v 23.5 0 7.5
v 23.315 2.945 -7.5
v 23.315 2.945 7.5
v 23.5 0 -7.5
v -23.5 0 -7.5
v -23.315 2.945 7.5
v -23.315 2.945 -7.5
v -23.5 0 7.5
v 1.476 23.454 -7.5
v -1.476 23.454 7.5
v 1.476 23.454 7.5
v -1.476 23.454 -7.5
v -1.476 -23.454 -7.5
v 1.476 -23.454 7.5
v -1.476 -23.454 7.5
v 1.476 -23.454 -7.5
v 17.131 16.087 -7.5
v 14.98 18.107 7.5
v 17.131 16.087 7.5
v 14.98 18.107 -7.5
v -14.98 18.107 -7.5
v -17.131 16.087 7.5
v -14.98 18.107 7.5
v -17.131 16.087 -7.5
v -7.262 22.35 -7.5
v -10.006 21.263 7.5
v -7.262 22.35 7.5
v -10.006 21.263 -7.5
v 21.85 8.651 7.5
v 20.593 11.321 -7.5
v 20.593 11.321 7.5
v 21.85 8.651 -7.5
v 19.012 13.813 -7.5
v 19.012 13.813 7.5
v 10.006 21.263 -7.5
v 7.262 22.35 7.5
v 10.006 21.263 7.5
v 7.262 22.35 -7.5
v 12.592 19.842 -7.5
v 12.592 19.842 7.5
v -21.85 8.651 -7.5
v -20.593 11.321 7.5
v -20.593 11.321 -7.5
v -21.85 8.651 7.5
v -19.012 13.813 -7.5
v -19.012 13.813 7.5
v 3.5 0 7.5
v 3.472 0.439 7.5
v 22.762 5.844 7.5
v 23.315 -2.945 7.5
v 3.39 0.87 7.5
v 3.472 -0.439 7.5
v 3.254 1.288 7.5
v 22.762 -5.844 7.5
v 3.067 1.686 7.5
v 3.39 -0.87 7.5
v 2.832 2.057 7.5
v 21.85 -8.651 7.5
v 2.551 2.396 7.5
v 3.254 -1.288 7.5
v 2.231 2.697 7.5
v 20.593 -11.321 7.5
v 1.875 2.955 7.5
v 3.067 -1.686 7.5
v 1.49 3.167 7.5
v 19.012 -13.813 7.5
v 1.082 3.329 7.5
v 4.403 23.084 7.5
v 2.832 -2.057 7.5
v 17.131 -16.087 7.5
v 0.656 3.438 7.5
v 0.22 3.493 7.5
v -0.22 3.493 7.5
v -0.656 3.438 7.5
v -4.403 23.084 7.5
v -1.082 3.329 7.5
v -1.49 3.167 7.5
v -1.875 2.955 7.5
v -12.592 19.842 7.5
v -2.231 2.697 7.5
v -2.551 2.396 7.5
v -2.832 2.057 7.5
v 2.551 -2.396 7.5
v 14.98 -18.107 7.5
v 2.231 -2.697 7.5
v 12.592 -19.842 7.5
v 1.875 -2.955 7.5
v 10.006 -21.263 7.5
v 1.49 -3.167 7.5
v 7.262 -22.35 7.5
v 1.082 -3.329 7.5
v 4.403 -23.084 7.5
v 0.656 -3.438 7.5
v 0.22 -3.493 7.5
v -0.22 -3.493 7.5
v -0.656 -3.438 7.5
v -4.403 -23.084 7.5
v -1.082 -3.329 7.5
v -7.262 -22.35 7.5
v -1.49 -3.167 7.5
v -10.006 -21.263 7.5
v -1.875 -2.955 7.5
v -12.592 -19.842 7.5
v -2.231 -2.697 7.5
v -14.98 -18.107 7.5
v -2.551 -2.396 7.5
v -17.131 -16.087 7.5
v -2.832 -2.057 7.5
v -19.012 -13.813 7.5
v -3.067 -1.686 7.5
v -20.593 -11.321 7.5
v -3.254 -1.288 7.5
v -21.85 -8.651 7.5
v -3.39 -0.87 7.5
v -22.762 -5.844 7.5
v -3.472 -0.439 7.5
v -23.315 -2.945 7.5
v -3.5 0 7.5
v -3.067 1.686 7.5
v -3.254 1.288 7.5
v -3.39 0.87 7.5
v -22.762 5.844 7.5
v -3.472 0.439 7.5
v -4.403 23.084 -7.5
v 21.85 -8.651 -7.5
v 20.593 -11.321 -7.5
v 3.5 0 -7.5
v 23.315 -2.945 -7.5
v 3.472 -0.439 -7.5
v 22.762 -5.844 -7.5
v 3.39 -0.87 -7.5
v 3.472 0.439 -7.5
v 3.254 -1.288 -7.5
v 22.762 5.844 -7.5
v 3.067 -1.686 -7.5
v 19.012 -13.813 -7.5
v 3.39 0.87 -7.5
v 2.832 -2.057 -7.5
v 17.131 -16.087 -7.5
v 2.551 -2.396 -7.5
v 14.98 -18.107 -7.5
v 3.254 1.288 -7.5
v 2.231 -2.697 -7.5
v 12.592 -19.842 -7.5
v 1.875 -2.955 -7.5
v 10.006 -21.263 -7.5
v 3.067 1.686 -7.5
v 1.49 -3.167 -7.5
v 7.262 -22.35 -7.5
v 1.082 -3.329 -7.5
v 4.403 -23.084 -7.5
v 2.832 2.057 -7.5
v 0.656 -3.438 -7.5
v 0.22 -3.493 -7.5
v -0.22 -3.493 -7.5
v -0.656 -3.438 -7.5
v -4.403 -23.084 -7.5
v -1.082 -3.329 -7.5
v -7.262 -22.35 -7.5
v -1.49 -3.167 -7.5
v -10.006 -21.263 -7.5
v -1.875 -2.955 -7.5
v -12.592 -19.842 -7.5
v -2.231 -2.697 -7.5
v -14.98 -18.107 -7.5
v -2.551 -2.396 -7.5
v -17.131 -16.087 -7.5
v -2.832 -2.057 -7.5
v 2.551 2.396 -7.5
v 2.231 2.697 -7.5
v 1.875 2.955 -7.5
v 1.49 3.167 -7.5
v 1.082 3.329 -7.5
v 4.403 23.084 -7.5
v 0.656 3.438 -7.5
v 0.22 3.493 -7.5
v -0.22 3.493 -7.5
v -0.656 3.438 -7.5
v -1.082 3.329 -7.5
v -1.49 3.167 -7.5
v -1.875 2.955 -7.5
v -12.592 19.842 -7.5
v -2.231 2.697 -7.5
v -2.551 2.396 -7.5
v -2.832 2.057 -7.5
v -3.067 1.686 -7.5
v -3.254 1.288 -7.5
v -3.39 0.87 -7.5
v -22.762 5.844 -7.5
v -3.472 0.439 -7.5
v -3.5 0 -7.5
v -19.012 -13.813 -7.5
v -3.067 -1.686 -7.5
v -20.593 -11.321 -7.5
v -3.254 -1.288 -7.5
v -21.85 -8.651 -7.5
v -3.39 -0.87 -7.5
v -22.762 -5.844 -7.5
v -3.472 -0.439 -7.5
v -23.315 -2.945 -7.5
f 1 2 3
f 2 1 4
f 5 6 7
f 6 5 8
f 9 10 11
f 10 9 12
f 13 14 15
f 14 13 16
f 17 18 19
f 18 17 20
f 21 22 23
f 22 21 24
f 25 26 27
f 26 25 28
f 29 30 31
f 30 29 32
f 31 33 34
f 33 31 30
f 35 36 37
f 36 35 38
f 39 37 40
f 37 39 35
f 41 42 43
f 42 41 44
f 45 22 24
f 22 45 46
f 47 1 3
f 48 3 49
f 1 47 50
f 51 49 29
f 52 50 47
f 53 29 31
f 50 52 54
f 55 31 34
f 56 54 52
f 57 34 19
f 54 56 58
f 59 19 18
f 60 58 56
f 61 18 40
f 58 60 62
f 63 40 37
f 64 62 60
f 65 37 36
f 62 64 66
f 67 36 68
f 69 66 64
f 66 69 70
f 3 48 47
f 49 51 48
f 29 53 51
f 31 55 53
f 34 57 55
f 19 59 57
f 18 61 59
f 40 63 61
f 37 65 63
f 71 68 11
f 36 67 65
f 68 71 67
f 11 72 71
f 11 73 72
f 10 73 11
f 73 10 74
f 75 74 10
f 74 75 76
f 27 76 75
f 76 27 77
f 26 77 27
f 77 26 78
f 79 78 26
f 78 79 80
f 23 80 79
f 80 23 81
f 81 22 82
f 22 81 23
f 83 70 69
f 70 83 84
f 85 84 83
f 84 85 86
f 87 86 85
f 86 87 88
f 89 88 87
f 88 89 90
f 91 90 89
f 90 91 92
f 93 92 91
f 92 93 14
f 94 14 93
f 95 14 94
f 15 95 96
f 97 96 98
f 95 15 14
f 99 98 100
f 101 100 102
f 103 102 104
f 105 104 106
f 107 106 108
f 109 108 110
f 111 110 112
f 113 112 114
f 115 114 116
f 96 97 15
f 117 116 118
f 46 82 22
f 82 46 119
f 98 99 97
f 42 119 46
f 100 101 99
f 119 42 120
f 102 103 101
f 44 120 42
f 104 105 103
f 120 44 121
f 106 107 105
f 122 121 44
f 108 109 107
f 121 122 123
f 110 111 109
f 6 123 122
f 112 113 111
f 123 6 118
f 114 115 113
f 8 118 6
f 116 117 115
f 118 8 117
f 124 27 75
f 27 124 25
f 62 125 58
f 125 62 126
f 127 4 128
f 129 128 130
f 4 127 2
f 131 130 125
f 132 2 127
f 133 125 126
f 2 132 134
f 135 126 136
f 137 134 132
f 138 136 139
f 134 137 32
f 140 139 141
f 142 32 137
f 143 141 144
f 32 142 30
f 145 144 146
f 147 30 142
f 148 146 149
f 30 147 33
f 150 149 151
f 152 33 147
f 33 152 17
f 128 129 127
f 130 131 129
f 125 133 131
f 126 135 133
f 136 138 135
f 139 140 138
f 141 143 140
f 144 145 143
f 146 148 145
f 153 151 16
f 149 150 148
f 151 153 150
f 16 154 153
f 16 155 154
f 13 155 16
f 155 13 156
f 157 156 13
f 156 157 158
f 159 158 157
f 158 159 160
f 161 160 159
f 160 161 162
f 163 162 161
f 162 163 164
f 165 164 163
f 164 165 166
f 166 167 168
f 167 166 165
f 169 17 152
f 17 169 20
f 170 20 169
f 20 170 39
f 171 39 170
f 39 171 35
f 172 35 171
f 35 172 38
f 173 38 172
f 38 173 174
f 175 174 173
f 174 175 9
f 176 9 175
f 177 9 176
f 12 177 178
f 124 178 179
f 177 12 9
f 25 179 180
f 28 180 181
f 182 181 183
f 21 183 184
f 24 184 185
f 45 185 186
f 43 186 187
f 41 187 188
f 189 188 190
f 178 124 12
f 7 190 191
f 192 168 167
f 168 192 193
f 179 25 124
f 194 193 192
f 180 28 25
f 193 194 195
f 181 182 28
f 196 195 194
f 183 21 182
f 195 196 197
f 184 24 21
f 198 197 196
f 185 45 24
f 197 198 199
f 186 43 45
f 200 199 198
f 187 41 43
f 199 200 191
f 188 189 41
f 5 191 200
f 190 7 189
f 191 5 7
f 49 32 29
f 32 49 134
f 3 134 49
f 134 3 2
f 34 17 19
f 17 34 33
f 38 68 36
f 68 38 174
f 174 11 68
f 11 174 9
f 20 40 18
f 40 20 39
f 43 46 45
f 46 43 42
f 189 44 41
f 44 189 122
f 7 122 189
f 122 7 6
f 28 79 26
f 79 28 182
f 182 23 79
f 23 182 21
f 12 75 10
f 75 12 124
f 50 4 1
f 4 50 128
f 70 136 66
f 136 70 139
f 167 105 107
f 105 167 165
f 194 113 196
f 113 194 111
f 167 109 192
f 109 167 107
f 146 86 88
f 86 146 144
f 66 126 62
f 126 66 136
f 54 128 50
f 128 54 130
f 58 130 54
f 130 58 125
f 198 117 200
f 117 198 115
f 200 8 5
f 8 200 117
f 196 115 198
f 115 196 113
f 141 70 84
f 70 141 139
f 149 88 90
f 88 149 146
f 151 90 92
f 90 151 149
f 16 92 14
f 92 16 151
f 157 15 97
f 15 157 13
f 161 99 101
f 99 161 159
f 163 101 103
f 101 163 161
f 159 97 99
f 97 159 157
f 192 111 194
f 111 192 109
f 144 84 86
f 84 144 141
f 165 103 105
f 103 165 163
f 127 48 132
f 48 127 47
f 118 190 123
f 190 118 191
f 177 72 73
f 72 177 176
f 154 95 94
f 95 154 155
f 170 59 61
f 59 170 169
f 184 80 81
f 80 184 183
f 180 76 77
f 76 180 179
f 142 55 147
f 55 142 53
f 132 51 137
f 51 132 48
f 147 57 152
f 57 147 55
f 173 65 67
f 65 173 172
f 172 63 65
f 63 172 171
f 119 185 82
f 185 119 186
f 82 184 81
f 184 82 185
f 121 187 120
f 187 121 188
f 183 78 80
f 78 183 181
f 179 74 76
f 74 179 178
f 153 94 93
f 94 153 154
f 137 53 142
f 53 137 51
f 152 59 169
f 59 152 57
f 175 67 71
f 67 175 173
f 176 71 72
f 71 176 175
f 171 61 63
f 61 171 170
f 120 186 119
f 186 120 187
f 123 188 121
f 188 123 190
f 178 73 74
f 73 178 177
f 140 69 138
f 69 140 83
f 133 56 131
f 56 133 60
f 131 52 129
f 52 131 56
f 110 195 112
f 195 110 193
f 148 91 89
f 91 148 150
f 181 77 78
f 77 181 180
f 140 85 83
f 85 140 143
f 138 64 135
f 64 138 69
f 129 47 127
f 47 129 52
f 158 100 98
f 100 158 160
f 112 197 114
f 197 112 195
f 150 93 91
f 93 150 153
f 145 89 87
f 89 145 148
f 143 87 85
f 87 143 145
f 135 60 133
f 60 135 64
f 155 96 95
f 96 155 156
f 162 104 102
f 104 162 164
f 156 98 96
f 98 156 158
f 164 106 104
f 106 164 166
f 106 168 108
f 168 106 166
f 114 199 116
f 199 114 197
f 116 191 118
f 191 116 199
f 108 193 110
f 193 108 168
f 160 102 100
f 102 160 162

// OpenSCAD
$fn = 50;


difference() {
	union() {
		translate(v = [0, 0, -7.5000000000]) {
			cylinder(h = 15, r = 23.5000000000);
		}
	}
	union() {
		translate(v = [0, 0, -100.0000000000]) {
			cylinder(h = 200, r = 3.5000000000);
		}
	}
}
